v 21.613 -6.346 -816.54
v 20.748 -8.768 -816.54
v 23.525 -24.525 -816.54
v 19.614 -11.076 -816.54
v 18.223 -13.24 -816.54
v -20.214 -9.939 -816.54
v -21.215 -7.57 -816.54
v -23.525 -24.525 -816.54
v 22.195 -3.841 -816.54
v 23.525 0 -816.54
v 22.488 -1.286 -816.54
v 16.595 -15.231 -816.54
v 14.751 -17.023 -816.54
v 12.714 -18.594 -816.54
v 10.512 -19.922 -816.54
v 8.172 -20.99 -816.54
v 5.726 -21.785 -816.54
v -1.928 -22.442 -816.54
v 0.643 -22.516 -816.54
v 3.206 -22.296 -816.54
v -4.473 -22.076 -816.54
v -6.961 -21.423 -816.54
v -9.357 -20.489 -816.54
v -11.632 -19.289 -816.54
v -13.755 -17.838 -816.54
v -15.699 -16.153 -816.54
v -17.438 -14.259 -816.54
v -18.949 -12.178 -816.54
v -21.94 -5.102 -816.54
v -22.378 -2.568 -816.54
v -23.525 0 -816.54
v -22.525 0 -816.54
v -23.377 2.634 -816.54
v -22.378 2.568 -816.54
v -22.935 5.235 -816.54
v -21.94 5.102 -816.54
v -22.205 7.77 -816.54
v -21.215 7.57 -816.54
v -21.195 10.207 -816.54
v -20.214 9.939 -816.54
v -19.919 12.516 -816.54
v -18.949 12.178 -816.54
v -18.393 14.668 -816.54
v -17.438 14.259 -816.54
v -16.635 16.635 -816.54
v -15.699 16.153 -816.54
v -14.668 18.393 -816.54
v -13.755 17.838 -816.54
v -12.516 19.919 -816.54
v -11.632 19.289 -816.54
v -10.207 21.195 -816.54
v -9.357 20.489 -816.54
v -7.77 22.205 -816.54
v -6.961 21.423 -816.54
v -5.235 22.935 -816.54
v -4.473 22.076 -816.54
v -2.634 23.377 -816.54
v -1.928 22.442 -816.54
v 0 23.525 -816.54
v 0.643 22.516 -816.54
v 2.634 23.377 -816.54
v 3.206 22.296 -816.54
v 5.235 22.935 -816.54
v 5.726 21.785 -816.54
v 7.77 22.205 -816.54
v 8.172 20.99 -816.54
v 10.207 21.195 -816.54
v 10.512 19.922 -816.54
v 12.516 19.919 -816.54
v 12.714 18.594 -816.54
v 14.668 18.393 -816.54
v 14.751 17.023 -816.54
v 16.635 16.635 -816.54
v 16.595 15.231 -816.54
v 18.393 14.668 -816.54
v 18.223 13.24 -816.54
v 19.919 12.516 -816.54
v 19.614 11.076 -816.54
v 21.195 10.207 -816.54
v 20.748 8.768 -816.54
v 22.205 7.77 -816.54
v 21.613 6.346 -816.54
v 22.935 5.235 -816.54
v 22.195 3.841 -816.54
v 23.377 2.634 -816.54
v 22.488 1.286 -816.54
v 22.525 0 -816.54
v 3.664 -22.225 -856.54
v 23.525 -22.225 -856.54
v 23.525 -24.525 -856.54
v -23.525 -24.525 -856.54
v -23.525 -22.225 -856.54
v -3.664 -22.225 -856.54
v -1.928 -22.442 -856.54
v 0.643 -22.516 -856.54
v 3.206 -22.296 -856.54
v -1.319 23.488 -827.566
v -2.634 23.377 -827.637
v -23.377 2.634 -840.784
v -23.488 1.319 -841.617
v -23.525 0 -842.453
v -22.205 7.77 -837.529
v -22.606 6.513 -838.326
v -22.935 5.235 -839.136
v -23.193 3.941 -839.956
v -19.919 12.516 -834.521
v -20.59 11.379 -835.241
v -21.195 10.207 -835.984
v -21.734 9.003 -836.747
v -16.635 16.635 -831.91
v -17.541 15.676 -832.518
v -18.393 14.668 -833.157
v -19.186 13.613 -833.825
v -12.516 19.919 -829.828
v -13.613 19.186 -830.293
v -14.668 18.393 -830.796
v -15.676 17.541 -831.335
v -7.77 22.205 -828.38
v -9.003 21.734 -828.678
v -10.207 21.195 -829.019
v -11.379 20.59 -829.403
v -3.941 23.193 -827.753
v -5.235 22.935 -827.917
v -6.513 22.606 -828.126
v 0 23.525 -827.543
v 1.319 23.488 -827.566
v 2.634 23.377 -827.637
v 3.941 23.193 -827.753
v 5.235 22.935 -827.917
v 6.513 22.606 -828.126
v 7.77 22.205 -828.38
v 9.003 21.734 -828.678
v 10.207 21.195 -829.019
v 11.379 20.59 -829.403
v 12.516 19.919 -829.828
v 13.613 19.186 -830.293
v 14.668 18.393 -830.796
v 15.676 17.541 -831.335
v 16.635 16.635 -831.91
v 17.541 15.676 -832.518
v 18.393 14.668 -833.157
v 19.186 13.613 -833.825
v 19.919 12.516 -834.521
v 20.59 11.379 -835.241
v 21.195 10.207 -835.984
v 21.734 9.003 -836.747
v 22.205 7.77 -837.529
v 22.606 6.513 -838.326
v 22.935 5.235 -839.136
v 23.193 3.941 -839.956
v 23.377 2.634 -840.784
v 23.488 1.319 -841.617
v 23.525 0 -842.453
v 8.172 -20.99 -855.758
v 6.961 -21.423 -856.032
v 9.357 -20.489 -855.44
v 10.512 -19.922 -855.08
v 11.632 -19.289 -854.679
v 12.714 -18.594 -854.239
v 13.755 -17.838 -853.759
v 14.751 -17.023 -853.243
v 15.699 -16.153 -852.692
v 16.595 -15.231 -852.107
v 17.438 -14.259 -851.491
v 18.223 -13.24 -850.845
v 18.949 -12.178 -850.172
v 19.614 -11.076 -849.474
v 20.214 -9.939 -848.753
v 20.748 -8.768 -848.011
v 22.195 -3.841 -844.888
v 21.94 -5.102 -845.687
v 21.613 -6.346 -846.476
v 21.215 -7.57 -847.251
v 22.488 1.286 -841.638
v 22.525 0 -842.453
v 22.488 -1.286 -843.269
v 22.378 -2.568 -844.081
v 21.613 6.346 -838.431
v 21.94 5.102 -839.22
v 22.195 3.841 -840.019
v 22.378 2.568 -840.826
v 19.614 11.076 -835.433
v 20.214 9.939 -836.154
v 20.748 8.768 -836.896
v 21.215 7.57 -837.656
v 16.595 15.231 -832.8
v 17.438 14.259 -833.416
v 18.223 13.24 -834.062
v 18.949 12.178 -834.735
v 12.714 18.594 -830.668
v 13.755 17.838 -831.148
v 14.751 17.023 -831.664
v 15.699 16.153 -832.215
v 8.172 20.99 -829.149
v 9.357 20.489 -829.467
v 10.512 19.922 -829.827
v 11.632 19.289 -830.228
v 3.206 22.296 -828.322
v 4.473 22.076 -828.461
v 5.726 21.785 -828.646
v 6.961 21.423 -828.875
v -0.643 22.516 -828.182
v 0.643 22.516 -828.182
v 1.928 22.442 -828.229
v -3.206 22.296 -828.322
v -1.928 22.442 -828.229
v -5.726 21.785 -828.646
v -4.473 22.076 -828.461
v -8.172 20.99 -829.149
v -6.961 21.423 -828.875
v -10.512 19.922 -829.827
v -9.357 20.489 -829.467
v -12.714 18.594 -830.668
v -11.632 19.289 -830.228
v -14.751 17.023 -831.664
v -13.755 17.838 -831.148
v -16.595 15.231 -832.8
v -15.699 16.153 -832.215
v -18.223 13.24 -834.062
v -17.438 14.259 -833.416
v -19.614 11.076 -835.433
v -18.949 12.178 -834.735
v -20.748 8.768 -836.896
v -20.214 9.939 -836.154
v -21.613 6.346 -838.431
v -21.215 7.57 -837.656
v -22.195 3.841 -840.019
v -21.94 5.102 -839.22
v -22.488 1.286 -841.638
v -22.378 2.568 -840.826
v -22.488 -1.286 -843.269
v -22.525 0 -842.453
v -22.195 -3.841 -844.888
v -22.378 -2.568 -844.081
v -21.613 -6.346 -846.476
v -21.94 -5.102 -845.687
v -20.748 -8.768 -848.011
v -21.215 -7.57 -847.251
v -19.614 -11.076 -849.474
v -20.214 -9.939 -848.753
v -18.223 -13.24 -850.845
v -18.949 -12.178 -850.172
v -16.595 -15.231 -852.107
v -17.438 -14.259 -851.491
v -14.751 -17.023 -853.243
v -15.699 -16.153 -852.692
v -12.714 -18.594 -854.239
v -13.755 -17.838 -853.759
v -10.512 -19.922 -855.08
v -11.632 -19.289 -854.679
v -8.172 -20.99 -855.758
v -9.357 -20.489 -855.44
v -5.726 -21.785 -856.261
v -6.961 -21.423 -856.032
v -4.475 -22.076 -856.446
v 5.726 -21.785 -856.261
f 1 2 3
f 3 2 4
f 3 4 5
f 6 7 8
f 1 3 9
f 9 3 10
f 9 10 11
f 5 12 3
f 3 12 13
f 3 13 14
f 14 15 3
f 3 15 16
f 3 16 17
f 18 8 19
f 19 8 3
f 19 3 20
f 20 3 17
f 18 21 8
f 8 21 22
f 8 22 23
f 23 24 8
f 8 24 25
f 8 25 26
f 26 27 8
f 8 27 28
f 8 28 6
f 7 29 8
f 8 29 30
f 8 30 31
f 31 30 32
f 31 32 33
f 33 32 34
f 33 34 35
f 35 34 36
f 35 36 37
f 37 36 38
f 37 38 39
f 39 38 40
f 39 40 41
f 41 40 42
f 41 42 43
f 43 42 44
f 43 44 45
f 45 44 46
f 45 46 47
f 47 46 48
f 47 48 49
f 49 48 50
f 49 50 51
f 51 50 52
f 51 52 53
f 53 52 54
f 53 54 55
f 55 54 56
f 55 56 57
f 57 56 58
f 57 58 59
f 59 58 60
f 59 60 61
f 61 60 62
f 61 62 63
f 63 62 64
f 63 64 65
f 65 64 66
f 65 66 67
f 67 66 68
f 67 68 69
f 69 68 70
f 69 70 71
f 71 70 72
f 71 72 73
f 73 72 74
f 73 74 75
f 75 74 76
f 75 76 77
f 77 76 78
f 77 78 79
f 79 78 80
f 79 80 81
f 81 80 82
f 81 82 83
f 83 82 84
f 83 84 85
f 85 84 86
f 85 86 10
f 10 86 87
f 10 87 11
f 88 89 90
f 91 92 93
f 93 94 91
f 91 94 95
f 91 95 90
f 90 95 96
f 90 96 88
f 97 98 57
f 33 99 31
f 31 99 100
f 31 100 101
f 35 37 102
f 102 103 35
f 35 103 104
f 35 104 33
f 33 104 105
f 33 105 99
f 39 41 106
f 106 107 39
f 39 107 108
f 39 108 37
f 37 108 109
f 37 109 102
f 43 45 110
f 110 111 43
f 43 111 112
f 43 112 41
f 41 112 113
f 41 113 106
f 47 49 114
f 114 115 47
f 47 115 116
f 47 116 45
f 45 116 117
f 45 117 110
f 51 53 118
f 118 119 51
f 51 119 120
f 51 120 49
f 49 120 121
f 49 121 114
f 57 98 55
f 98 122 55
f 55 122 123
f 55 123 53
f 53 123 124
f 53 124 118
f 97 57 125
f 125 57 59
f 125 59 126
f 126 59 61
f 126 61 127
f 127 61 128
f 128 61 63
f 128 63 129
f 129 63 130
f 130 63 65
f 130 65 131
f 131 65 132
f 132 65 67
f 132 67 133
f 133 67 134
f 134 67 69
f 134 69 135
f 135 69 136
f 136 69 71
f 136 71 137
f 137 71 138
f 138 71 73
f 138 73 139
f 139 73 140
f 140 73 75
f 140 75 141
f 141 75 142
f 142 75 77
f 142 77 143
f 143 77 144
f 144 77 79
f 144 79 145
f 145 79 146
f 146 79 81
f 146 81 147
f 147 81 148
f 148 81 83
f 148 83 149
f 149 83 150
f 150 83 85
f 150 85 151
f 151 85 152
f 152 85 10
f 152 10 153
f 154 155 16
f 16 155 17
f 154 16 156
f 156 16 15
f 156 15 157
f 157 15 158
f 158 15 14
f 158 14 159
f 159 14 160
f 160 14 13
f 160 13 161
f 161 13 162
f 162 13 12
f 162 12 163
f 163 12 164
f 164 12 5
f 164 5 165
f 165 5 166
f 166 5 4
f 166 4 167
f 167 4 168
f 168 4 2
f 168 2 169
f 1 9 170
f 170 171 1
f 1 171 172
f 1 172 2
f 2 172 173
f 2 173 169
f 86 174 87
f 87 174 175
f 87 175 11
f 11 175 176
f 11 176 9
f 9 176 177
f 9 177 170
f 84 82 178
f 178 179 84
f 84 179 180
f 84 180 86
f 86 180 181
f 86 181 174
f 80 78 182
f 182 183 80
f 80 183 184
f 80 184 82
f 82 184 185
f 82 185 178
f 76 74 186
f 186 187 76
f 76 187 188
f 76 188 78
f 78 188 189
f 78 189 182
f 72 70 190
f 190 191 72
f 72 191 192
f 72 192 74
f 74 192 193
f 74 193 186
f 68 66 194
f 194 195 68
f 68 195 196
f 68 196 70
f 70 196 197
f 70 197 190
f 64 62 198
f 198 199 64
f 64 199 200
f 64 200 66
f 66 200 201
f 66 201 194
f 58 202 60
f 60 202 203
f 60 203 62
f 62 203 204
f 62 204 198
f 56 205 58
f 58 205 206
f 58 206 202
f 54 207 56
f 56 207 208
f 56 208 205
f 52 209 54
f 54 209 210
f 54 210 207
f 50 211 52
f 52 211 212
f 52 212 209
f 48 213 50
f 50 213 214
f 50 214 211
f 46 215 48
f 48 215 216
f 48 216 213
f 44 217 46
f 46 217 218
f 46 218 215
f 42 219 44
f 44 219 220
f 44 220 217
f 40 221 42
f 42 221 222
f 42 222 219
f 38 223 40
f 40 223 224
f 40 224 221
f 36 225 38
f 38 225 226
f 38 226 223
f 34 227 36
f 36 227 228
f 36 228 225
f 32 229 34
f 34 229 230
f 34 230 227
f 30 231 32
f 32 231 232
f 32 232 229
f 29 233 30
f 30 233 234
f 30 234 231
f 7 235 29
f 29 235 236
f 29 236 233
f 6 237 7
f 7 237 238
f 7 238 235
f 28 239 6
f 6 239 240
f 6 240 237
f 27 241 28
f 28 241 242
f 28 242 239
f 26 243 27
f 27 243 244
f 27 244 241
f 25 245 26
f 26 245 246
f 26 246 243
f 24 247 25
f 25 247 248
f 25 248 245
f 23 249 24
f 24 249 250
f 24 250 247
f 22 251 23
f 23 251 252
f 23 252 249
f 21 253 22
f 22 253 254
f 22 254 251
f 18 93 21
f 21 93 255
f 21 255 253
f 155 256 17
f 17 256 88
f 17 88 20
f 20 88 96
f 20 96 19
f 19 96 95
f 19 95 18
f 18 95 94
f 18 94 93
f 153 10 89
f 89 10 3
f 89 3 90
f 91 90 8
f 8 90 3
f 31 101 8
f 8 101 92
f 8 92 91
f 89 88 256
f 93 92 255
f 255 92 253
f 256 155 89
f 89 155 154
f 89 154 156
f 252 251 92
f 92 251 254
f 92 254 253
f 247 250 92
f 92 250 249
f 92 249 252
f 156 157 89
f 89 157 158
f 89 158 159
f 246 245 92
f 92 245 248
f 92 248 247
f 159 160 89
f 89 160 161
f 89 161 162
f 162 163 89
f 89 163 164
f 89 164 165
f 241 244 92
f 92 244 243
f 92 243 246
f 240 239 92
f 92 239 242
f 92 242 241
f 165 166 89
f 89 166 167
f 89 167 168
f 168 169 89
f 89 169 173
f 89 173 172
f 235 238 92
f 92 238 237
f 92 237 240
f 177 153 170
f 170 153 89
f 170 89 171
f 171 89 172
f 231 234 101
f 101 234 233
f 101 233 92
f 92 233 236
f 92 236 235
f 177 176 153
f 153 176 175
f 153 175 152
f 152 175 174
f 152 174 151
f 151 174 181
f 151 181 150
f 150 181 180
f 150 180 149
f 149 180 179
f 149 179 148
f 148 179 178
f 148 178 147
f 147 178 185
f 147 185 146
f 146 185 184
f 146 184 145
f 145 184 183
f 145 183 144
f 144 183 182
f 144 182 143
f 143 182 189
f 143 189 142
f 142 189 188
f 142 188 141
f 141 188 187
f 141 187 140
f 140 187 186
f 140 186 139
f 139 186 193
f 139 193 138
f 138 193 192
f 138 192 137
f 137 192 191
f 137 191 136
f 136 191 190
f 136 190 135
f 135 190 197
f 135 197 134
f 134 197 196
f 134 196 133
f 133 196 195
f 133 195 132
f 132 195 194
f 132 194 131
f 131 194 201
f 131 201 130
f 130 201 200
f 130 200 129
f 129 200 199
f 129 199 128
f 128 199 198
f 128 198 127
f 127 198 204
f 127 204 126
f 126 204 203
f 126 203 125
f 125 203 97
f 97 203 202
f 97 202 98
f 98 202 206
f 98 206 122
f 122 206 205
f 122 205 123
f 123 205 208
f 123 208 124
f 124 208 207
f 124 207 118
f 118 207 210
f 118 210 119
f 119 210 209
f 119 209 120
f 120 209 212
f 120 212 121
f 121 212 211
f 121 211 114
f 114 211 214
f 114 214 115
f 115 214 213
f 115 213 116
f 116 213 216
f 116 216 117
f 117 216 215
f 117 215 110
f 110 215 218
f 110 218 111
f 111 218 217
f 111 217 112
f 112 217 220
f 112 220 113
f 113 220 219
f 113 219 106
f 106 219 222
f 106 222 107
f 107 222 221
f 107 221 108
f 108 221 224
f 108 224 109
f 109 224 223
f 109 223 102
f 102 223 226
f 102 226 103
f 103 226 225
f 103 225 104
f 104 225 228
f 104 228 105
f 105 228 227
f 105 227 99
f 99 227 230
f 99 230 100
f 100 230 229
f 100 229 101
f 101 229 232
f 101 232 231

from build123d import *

# Parameters (mm, degrees)
BOSS_EXTRUDE1_START     = -856.54016
SKETCH1_R               = 23.525
SKETCH1_R_2             = 22.525
BOSS_EXTRUDE1_DEPTH     = 40
BOSS_EXTRUDE2_DEPTH     = 40
CUT_EXTRUDE1_DEPTH      = 24.525
CUT_EXTRUDE1_DEPTH_BACK = 24.525


with BuildPart() as part:
    # Sketch1 → Boss-Extrude1 (new body)
    with BuildSketch(Plane.XY.offset(BOSS_EXTRUDE1_START)):
        Circle(SKETCH1_R)
        Circle(SKETCH1_R_2, mode=Mode.SUBTRACT)
    extrude(amount=BOSS_EXTRUDE1_DEPTH)

    # Sketch4 → Boss-Extrude2 (add)
    with BuildSketch(Plane.XY.offset(-816.540159845)):
        Polygon((23.525, -23.525), (23.525, -24.525), (-23.525, -24.525), (-23.525, -23.525), (0, -23.525), align=None)
        with BuildLine():
            Line((23.525, -23.525), (23.525, 0))
            ThreePointArc((23.525, 0), (16.634687027, -16.634687027), (0, -23.525))
            Line((0, -23.525), (23.525, -23.525))
        make_face()
        with BuildLine():
            ThreePointArc((0, -23.525), (-16.634687027, -16.634687027), (-23.525, 0))
            Line((-23.525, 0), (-23.525, -23.525))
            Line((-23.525, -23.525), (0, -23.525))
        make_face()
    extrude(amount=-BOSS_EXTRUDE2_DEPTH)

    # Sketch3 → Cut-Extrude1 (cut, two sides)
    with BuildSketch(Plane(origin=(0, 0, 0), x_dir=(0, 0, -1), z_dir=(1, 0, 0))) as cut_extrude1_sk:
        Polygon((827.542837087, 23.525), (856.540159845, -22.225), (856.540159845, 23.525), align=None)
    extrude(amount=CUT_EXTRUDE1_DEPTH, mode=Mode.SUBTRACT)
    extrude(cut_extrude1_sk.sketch, amount=-CUT_EXTRUDE1_DEPTH_BACK, mode=Mode.SUBTRACT)


solid = part.part
